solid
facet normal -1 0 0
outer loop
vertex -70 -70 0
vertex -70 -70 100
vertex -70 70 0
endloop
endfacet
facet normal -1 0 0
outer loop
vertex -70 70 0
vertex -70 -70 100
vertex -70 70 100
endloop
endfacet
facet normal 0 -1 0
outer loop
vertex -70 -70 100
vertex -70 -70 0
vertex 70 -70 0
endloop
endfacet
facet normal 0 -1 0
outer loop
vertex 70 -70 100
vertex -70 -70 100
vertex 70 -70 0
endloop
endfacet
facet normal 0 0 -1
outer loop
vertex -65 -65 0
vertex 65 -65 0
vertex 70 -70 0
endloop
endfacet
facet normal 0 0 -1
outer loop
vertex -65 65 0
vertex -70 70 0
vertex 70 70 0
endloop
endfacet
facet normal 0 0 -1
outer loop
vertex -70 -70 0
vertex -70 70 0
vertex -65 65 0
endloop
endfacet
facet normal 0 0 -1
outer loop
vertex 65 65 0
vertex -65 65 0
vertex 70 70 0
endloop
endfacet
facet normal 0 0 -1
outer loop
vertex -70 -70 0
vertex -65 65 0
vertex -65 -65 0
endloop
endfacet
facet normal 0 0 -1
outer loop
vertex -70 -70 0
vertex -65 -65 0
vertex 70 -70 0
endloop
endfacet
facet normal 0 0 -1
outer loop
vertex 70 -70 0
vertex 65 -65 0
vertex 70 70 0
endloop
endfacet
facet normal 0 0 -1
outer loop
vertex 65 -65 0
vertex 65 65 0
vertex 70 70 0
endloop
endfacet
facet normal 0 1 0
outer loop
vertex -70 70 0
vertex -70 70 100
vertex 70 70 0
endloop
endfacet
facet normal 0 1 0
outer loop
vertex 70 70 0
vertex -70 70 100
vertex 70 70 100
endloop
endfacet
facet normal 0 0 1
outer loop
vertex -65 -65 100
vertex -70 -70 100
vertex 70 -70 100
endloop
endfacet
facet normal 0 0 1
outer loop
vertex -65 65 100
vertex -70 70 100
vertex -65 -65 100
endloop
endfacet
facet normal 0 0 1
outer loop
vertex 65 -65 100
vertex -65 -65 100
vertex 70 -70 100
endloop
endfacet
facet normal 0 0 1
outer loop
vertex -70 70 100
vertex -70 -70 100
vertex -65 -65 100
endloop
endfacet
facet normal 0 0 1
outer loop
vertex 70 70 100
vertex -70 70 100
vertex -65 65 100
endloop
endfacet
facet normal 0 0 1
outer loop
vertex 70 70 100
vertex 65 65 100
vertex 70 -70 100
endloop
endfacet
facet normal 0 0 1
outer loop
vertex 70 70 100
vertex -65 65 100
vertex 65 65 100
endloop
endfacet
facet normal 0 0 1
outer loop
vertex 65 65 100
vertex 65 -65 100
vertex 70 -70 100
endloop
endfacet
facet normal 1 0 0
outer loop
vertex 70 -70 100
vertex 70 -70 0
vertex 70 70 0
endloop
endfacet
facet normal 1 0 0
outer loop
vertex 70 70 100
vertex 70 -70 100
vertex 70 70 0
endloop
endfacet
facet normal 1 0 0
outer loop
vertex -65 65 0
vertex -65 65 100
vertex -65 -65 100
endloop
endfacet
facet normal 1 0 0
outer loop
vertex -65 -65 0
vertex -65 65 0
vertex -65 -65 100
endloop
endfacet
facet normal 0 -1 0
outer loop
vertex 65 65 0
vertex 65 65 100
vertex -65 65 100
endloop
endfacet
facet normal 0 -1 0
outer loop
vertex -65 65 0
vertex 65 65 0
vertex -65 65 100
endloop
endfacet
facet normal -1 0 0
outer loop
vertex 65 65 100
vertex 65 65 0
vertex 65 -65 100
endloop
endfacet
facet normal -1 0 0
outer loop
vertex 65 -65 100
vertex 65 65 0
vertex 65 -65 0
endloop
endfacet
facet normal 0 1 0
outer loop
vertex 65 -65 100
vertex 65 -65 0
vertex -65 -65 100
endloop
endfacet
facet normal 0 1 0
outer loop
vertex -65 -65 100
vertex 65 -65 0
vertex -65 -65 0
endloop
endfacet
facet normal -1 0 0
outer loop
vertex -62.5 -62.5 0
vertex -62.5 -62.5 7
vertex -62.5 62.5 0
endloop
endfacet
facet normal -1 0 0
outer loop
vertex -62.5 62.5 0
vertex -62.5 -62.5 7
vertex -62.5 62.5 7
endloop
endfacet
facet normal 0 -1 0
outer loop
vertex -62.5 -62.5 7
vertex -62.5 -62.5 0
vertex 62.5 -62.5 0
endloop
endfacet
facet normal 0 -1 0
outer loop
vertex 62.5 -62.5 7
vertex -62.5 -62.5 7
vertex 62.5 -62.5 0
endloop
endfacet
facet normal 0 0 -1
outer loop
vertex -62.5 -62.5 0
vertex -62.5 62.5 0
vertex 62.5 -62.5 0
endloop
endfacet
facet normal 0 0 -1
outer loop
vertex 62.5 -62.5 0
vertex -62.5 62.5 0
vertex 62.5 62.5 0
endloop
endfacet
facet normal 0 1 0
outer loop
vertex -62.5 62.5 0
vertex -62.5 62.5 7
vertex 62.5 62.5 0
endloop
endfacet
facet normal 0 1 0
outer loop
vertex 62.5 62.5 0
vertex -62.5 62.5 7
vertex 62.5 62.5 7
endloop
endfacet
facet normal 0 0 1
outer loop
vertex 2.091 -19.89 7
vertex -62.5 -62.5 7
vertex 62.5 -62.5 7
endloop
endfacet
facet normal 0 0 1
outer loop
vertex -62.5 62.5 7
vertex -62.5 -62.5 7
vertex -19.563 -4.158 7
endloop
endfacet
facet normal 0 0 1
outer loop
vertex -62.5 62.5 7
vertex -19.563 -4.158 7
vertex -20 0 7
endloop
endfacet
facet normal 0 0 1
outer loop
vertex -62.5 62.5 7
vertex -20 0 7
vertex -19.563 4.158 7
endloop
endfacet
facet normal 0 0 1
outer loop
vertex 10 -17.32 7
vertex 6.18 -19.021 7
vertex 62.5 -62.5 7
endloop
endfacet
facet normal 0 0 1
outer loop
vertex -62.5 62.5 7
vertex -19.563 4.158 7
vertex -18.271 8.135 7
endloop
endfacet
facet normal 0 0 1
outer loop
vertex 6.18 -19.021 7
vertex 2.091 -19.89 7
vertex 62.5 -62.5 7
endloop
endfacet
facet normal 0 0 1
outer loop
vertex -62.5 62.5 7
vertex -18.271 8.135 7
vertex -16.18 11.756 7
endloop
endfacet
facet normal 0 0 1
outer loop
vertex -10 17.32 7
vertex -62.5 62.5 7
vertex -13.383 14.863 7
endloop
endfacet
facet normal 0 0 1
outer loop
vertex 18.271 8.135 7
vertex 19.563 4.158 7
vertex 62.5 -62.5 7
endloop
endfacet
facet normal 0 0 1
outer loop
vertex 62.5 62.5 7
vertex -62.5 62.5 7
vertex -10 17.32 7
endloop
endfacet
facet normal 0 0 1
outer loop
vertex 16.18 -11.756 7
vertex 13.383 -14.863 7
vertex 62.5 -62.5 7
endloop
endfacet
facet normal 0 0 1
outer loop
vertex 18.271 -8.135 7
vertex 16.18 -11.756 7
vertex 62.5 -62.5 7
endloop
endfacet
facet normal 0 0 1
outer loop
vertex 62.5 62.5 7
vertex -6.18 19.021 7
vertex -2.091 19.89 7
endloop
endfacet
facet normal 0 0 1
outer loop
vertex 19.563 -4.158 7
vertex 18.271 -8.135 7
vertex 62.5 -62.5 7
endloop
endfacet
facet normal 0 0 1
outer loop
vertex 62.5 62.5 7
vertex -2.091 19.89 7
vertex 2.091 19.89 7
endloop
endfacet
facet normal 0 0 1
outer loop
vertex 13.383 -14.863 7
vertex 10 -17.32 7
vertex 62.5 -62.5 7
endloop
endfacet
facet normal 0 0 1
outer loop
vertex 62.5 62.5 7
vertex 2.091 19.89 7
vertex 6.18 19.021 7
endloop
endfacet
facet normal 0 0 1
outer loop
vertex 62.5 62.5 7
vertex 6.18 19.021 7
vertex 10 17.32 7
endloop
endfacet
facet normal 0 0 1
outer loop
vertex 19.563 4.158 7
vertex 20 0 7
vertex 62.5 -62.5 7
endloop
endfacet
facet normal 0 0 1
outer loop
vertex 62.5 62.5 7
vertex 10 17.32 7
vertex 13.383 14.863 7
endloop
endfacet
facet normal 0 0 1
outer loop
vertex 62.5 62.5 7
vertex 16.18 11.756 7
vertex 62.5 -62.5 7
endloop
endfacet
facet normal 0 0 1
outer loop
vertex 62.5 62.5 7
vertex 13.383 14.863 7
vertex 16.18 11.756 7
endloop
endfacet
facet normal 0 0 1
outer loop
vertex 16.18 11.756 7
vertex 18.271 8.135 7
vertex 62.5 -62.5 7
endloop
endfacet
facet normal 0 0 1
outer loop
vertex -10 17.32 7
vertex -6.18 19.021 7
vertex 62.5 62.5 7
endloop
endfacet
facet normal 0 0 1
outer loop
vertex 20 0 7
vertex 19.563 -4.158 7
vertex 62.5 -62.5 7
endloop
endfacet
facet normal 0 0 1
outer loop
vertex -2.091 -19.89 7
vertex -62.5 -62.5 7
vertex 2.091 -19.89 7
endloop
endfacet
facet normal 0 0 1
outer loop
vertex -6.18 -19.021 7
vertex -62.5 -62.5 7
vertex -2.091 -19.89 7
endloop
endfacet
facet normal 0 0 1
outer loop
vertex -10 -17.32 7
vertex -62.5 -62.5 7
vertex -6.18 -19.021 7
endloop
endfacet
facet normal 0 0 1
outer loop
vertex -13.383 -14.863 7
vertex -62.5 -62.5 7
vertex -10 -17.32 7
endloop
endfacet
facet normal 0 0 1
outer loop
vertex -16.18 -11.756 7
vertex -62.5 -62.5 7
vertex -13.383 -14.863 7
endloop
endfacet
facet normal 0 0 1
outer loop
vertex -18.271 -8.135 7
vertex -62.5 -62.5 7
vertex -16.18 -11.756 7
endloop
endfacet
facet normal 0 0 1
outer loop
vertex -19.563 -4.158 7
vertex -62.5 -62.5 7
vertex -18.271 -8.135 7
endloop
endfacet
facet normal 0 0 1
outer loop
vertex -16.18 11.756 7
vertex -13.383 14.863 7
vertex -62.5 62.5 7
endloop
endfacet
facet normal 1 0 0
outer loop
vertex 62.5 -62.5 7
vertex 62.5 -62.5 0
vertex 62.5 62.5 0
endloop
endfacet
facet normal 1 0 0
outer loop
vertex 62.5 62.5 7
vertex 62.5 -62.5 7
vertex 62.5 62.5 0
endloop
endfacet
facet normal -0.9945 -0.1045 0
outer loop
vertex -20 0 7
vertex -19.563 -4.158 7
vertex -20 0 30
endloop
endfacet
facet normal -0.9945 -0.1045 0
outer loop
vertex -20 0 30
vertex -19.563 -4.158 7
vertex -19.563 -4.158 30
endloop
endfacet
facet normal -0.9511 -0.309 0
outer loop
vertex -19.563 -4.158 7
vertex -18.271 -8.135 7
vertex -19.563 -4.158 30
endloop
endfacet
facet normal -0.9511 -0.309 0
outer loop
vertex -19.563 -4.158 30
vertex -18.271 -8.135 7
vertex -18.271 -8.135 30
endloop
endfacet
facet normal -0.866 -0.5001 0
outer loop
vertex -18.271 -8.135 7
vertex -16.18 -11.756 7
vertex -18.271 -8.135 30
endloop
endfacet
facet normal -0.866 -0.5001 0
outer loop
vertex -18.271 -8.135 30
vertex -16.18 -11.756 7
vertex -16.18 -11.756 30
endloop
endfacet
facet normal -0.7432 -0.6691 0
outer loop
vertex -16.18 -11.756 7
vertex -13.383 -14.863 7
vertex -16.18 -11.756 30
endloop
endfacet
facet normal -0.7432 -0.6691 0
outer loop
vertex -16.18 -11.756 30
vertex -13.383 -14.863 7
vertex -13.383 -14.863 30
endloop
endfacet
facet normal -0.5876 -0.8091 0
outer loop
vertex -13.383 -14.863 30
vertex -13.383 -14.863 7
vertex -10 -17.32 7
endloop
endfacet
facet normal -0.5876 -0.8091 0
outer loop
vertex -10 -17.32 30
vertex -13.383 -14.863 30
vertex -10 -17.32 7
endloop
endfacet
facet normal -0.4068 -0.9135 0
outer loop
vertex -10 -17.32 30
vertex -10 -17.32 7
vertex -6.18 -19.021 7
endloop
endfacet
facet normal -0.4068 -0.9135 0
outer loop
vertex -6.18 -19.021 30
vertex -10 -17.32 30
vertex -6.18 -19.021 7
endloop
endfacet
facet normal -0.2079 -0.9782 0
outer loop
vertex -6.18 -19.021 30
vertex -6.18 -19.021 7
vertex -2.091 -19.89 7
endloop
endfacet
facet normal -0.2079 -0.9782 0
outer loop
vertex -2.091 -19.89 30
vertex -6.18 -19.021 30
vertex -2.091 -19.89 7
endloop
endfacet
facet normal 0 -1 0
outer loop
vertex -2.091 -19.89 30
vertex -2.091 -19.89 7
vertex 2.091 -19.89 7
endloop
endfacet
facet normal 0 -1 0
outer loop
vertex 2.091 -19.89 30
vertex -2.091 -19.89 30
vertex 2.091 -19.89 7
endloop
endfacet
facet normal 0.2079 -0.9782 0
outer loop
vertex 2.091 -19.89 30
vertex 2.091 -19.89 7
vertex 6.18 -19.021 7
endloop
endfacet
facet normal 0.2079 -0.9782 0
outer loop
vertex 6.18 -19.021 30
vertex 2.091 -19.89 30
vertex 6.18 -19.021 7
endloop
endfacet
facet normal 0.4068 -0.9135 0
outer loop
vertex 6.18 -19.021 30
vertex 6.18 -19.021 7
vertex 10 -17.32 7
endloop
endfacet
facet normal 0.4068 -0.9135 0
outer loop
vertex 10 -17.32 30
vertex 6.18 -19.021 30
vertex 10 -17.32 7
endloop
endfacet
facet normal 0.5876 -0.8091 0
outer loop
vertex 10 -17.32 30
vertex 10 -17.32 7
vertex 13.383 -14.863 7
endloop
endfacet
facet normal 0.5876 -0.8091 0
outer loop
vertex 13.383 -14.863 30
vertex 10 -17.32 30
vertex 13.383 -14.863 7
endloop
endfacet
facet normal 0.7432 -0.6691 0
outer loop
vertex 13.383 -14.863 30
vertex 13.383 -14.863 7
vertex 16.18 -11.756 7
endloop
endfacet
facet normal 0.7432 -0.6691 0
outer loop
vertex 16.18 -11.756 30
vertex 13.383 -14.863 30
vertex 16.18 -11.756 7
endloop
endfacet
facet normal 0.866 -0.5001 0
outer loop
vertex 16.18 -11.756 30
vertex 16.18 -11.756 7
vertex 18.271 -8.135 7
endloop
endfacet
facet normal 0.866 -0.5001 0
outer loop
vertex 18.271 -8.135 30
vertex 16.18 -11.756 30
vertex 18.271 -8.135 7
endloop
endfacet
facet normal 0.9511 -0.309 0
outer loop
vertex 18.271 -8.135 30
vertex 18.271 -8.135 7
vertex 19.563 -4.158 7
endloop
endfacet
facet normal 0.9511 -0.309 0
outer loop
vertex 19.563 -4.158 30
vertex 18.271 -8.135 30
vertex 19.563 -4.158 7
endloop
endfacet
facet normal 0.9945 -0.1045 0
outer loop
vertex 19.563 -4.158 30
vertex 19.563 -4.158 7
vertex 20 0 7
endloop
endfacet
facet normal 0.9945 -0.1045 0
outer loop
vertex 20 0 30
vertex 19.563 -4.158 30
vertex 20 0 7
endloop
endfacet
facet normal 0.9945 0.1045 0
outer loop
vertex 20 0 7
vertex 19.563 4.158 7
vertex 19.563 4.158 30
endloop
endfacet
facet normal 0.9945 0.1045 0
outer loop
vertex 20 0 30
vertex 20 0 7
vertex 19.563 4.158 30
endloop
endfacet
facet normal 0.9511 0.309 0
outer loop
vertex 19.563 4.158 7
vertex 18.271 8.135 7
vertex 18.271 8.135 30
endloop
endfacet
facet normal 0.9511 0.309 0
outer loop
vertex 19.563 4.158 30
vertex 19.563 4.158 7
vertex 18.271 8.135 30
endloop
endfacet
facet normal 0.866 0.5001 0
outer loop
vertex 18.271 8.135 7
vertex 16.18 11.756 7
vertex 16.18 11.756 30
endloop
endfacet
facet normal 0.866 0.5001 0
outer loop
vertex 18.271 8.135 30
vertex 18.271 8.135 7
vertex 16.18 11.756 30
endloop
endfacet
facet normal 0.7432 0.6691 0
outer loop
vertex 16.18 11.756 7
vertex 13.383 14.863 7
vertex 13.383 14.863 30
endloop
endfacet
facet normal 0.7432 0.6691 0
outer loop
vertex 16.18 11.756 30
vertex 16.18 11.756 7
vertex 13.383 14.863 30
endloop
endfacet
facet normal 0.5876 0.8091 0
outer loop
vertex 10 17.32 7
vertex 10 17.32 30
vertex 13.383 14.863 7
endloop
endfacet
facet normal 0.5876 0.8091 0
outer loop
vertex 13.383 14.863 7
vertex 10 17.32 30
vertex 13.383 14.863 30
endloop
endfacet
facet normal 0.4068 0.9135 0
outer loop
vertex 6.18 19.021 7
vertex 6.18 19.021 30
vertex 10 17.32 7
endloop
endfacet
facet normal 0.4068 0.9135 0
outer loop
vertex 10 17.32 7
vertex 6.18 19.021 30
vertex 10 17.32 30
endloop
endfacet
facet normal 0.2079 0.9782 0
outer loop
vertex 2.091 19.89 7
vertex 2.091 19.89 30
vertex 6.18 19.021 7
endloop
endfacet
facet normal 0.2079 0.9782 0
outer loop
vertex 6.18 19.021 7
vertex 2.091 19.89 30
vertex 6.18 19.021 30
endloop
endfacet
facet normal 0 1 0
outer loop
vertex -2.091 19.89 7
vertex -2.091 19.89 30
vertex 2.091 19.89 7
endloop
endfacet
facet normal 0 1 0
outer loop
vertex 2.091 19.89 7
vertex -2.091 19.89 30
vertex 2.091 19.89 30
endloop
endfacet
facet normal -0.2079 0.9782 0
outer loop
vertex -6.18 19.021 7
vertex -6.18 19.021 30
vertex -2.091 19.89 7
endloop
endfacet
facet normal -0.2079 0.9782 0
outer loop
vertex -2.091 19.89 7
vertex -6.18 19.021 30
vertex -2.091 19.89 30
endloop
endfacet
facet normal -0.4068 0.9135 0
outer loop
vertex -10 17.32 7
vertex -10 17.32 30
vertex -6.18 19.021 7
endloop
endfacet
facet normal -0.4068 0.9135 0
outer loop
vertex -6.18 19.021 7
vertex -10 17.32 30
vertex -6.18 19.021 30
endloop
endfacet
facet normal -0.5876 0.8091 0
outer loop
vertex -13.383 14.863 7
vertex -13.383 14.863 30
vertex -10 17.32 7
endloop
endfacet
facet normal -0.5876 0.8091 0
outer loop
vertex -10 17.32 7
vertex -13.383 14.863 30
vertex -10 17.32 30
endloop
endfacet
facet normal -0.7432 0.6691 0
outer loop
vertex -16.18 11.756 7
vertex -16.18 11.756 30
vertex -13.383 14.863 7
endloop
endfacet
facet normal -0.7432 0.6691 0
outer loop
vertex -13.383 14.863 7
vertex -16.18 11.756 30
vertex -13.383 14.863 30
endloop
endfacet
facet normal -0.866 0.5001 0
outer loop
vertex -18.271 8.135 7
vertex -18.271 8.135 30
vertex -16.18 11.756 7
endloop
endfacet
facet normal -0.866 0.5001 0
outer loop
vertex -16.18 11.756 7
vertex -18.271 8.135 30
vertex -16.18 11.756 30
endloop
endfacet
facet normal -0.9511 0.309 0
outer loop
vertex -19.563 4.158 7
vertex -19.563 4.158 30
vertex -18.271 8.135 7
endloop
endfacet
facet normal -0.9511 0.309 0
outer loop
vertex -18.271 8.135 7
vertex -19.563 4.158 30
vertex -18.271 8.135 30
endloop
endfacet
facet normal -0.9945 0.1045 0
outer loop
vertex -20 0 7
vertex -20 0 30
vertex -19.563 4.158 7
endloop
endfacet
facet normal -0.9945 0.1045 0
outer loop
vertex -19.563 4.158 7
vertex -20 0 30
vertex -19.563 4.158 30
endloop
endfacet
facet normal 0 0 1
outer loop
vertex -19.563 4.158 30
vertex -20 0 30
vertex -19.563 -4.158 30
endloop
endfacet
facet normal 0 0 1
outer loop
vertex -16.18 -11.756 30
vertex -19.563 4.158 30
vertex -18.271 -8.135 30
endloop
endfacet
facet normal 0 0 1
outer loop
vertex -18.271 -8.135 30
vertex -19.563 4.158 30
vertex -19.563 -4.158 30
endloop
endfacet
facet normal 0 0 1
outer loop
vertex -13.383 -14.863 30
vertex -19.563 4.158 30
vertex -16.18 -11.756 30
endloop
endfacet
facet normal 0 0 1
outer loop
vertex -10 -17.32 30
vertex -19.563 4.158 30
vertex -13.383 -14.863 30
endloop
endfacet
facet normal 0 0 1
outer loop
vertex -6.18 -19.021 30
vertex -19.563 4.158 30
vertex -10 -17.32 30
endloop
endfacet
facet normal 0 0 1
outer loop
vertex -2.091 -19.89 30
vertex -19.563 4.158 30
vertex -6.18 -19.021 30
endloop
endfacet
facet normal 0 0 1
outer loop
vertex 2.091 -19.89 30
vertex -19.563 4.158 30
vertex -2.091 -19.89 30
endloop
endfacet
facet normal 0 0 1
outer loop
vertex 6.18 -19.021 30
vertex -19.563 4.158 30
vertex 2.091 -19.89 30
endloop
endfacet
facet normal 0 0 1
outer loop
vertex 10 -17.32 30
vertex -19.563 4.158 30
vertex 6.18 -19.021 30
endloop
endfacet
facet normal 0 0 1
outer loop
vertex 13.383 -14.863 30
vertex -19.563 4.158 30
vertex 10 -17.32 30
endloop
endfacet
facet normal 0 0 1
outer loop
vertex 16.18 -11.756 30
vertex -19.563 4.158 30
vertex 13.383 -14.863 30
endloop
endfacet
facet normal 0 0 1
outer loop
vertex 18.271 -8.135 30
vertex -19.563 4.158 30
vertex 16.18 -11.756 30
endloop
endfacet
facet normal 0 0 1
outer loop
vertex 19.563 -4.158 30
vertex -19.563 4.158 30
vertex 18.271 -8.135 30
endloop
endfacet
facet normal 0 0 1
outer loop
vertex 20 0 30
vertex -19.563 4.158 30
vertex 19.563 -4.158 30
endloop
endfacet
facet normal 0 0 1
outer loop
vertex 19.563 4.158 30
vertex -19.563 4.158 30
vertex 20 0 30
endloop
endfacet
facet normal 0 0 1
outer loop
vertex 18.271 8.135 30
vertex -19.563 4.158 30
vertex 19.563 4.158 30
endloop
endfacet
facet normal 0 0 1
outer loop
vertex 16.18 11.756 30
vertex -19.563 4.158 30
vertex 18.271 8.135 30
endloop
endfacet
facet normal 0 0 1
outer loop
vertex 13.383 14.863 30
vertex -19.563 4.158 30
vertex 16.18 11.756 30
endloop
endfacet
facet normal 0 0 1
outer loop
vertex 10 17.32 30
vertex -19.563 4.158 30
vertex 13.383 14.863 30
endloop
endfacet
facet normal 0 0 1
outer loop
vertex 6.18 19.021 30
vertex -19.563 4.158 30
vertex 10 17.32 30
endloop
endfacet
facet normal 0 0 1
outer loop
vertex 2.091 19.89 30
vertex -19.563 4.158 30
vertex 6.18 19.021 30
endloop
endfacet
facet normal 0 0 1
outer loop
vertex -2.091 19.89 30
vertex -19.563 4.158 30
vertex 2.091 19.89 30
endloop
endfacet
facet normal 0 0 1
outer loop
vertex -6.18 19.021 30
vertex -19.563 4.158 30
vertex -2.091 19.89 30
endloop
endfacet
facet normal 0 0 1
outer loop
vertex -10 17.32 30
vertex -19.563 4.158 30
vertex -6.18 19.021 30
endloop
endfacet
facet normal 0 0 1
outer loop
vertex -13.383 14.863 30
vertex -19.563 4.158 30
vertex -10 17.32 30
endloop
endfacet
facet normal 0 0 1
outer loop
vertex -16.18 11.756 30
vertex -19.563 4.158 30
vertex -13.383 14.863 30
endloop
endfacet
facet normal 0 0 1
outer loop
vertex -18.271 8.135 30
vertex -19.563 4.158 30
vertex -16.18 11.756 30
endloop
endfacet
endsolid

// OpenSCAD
union() {
translate([0,0,50]) difference() {
cube([140,140,100],center=true); 
cube([130,130,200],center=true); 
}
union() {
translate([0,0,3.5]) cube([125,125,7],center=true); 
translate([0,0,15]) cylinder(30,20,20,center=true,$fs=0.02); 
}
}
